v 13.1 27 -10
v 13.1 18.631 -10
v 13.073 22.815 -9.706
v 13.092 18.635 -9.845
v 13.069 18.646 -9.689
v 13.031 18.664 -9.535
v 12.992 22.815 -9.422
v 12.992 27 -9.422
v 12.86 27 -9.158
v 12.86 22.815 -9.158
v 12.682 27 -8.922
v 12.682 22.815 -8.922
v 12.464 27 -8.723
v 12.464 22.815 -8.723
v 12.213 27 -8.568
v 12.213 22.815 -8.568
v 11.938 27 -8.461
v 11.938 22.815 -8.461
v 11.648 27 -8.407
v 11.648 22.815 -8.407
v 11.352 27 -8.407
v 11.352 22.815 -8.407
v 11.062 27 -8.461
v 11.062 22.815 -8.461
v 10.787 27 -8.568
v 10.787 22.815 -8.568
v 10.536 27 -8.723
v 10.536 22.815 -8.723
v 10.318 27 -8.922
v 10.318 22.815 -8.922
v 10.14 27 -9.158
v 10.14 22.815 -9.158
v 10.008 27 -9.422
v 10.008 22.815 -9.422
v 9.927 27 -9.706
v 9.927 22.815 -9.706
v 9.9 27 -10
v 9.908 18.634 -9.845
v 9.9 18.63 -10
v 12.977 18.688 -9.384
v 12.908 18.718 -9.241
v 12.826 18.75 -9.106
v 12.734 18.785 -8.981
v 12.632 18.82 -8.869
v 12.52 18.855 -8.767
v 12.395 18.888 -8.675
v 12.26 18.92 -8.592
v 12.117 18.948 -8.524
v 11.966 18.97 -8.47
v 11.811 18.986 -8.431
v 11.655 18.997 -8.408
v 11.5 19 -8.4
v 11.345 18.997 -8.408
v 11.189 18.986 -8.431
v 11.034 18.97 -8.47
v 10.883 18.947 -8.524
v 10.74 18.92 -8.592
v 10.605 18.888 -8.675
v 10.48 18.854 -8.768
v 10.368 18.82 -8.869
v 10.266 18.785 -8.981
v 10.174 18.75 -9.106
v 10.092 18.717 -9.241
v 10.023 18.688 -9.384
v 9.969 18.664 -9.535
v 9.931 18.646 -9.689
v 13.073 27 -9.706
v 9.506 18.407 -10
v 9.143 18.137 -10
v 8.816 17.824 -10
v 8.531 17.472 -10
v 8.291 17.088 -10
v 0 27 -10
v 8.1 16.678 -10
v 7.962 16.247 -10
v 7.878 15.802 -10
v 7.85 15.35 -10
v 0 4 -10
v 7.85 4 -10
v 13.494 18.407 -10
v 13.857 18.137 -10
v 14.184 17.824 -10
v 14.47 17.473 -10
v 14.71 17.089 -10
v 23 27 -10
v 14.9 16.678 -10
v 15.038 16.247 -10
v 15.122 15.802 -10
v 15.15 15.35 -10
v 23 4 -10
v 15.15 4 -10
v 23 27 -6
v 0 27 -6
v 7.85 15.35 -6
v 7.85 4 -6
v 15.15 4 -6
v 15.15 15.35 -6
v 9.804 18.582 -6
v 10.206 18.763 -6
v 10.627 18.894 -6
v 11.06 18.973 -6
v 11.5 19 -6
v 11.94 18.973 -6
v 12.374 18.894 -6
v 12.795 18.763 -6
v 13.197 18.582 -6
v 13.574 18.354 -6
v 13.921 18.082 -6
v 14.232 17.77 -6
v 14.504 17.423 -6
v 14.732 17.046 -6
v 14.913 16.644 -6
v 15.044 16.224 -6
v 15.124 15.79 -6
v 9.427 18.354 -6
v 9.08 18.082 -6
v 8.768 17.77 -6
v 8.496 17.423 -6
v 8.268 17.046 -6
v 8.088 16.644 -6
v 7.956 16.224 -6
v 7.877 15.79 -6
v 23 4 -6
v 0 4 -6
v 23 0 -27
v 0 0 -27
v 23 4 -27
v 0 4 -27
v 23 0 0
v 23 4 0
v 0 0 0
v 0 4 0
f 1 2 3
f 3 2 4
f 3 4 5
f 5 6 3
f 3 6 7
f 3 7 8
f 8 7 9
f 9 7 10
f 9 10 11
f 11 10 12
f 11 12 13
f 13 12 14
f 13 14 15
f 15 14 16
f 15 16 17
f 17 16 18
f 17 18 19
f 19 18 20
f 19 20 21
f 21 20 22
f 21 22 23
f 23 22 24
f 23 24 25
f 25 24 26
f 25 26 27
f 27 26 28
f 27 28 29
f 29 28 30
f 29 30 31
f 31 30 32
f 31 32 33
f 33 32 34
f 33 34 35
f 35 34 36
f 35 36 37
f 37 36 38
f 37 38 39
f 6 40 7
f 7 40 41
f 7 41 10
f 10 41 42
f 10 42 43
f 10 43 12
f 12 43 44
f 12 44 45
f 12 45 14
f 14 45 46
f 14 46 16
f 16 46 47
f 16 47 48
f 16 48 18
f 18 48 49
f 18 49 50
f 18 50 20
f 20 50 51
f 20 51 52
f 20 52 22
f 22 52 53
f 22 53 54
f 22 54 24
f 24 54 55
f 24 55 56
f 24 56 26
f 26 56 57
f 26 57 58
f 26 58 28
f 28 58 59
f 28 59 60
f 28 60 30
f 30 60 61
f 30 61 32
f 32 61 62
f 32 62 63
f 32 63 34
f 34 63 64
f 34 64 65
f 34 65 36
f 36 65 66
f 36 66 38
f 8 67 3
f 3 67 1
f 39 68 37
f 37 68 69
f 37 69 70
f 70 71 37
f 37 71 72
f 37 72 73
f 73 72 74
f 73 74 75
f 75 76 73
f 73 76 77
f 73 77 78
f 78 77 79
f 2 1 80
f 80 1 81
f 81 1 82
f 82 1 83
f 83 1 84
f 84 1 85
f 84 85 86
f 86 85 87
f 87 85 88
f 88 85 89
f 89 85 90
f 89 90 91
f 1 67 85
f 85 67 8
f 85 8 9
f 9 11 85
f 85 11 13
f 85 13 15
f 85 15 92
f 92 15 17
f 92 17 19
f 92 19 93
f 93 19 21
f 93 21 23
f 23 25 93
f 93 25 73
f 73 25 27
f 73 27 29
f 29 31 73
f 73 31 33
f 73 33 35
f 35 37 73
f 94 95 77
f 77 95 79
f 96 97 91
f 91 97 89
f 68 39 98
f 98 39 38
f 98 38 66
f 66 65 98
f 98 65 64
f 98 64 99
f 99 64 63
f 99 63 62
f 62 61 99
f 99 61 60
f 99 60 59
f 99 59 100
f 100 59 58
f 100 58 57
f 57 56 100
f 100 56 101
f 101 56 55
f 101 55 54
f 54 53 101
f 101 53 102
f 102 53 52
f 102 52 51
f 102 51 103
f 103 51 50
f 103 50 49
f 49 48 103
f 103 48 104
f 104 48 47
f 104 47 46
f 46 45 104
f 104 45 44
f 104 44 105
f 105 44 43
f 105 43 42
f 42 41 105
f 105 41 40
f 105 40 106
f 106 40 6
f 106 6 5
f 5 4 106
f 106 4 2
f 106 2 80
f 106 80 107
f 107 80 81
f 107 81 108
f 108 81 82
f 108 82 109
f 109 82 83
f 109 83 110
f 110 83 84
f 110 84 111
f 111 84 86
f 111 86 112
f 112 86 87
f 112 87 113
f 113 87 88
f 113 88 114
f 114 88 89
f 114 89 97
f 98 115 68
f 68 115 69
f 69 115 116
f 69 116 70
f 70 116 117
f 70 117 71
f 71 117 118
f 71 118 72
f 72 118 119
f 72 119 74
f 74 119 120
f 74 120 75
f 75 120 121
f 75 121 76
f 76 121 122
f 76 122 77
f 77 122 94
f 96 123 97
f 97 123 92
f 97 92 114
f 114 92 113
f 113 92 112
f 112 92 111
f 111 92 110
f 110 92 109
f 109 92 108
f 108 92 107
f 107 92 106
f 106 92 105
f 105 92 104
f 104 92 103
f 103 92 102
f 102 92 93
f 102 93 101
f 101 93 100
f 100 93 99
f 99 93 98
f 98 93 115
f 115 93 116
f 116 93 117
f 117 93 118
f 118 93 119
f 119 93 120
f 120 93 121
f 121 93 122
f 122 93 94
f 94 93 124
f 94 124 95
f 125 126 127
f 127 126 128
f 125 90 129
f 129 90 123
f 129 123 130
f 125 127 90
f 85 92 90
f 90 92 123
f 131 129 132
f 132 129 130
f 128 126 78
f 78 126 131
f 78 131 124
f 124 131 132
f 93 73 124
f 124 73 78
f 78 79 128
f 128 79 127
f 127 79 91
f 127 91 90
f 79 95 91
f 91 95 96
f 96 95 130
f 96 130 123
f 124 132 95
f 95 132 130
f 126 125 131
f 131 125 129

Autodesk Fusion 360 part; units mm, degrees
sketch "Sketch1" plane through (0, 0, 0) normal (0, 1, 0) x (1, 0, 0)
  line L0 (0, 0) -> (23, 0)
  line L1 (23, 0) -> (23, 27)
  line L2 (23, 27) -> (0, 27)
  line L3 (0, 27) -> (0, 0)
  line L4 (11.5, 0) -> (11.5, 27)
  line L5 (11.5, 0) -> (11.5, 6)
  line L6 (23, 6) -> (0, 6)
  line L7 (11.5, 6) -> (11.5, 10)
  line L8 (0, 6) -> (23, 6)
  line L9 (23, 6) -> (23, 10)
  line L10 (23, 10) -> (0, 10)
  line L11 (0, 10) -> (0, 6)
  dimension "d1" = 23
  dimension "d2" = 27
  dimension "d3" = 6
  dimension "d4" = 4
extrude "Extrude1" add sketch "Sketch1" along normal blind 4
sketch "Sketch2" plane through (0, 4, 0) normal (0, 1, 0) x (-1, 0, 0)
  line L0 (0, -27) -> (0, 0)
  line L1 (0, 0) -> (-23, 0)
  line L2 (-23, 0) -> (-23, -27)
  line L3 (-23, -27) -> (0, -27)
  line L4 (-11.5, 0) -> (-11.5, -6)
  line L5 (-23, -6) -> (0, -6)
  line L6 (0, -6) -> (0, -10)
  line L7 (0, -6) -> (-23, -6)
  line L8 (-23, -10) -> (-23, -6)
  line L9 (-23, -10) -> (0, -10)
  dimension "d7" = 6
  dimension "d8" = 4
extrude "Extrude2" add sketch "Sketch2" along normal blind 23 contours L0 L2 L5 L6 L7 L8 L9
sketch "Sketch3" plane through (0, 0, -6) normal (0, 0, 1) x (1, 0, 0)
  line L0 (0, 4) -> (23, 4)
  line L1 (23, 4) -> (23, 27)
  line L2 (23, 27) -> (0, 27)
  line L3 (0, 27) -> (0, 4)
  line L4 (11.5, 0) -> (11.5, 19)
  circle A0 centre (11.5003, 15.35) radius 3.65
  line L5 (15.1503, 15.35) -> (15.1503, 4)
  line L6 (7.8503, 4) -> (7.8503, 15.35)
  dimension "d11" = 19
  dimension "d12" = 7.3
extrude "Extrude5" cut sketch "Sketch3" against normal blind 4 contours L0 L4 A0 L6 | L0 L4 A0 L5 | L4 A0 | L4 A0
sketch "Sketch4" plane through (0, 27, 0) normal (0, 1, 0) x (-1, 0, 0)
  line L0 (0, -6) -> (-23, -6)
  line L1 (-23, -6) -> (-23, -10)
  line L2 (-23, -10) -> (0, -10)
  line L3 (0, -10) -> (0, -6)
  circle A0 centre (-11.5, -10) radius 1.6
  dimension "d15" = 3.2
extrude "Extrude4" cut sketch "Sketch4" against normal blind 9 contours L2 A0 picked at (-11.109, -9.6372)
